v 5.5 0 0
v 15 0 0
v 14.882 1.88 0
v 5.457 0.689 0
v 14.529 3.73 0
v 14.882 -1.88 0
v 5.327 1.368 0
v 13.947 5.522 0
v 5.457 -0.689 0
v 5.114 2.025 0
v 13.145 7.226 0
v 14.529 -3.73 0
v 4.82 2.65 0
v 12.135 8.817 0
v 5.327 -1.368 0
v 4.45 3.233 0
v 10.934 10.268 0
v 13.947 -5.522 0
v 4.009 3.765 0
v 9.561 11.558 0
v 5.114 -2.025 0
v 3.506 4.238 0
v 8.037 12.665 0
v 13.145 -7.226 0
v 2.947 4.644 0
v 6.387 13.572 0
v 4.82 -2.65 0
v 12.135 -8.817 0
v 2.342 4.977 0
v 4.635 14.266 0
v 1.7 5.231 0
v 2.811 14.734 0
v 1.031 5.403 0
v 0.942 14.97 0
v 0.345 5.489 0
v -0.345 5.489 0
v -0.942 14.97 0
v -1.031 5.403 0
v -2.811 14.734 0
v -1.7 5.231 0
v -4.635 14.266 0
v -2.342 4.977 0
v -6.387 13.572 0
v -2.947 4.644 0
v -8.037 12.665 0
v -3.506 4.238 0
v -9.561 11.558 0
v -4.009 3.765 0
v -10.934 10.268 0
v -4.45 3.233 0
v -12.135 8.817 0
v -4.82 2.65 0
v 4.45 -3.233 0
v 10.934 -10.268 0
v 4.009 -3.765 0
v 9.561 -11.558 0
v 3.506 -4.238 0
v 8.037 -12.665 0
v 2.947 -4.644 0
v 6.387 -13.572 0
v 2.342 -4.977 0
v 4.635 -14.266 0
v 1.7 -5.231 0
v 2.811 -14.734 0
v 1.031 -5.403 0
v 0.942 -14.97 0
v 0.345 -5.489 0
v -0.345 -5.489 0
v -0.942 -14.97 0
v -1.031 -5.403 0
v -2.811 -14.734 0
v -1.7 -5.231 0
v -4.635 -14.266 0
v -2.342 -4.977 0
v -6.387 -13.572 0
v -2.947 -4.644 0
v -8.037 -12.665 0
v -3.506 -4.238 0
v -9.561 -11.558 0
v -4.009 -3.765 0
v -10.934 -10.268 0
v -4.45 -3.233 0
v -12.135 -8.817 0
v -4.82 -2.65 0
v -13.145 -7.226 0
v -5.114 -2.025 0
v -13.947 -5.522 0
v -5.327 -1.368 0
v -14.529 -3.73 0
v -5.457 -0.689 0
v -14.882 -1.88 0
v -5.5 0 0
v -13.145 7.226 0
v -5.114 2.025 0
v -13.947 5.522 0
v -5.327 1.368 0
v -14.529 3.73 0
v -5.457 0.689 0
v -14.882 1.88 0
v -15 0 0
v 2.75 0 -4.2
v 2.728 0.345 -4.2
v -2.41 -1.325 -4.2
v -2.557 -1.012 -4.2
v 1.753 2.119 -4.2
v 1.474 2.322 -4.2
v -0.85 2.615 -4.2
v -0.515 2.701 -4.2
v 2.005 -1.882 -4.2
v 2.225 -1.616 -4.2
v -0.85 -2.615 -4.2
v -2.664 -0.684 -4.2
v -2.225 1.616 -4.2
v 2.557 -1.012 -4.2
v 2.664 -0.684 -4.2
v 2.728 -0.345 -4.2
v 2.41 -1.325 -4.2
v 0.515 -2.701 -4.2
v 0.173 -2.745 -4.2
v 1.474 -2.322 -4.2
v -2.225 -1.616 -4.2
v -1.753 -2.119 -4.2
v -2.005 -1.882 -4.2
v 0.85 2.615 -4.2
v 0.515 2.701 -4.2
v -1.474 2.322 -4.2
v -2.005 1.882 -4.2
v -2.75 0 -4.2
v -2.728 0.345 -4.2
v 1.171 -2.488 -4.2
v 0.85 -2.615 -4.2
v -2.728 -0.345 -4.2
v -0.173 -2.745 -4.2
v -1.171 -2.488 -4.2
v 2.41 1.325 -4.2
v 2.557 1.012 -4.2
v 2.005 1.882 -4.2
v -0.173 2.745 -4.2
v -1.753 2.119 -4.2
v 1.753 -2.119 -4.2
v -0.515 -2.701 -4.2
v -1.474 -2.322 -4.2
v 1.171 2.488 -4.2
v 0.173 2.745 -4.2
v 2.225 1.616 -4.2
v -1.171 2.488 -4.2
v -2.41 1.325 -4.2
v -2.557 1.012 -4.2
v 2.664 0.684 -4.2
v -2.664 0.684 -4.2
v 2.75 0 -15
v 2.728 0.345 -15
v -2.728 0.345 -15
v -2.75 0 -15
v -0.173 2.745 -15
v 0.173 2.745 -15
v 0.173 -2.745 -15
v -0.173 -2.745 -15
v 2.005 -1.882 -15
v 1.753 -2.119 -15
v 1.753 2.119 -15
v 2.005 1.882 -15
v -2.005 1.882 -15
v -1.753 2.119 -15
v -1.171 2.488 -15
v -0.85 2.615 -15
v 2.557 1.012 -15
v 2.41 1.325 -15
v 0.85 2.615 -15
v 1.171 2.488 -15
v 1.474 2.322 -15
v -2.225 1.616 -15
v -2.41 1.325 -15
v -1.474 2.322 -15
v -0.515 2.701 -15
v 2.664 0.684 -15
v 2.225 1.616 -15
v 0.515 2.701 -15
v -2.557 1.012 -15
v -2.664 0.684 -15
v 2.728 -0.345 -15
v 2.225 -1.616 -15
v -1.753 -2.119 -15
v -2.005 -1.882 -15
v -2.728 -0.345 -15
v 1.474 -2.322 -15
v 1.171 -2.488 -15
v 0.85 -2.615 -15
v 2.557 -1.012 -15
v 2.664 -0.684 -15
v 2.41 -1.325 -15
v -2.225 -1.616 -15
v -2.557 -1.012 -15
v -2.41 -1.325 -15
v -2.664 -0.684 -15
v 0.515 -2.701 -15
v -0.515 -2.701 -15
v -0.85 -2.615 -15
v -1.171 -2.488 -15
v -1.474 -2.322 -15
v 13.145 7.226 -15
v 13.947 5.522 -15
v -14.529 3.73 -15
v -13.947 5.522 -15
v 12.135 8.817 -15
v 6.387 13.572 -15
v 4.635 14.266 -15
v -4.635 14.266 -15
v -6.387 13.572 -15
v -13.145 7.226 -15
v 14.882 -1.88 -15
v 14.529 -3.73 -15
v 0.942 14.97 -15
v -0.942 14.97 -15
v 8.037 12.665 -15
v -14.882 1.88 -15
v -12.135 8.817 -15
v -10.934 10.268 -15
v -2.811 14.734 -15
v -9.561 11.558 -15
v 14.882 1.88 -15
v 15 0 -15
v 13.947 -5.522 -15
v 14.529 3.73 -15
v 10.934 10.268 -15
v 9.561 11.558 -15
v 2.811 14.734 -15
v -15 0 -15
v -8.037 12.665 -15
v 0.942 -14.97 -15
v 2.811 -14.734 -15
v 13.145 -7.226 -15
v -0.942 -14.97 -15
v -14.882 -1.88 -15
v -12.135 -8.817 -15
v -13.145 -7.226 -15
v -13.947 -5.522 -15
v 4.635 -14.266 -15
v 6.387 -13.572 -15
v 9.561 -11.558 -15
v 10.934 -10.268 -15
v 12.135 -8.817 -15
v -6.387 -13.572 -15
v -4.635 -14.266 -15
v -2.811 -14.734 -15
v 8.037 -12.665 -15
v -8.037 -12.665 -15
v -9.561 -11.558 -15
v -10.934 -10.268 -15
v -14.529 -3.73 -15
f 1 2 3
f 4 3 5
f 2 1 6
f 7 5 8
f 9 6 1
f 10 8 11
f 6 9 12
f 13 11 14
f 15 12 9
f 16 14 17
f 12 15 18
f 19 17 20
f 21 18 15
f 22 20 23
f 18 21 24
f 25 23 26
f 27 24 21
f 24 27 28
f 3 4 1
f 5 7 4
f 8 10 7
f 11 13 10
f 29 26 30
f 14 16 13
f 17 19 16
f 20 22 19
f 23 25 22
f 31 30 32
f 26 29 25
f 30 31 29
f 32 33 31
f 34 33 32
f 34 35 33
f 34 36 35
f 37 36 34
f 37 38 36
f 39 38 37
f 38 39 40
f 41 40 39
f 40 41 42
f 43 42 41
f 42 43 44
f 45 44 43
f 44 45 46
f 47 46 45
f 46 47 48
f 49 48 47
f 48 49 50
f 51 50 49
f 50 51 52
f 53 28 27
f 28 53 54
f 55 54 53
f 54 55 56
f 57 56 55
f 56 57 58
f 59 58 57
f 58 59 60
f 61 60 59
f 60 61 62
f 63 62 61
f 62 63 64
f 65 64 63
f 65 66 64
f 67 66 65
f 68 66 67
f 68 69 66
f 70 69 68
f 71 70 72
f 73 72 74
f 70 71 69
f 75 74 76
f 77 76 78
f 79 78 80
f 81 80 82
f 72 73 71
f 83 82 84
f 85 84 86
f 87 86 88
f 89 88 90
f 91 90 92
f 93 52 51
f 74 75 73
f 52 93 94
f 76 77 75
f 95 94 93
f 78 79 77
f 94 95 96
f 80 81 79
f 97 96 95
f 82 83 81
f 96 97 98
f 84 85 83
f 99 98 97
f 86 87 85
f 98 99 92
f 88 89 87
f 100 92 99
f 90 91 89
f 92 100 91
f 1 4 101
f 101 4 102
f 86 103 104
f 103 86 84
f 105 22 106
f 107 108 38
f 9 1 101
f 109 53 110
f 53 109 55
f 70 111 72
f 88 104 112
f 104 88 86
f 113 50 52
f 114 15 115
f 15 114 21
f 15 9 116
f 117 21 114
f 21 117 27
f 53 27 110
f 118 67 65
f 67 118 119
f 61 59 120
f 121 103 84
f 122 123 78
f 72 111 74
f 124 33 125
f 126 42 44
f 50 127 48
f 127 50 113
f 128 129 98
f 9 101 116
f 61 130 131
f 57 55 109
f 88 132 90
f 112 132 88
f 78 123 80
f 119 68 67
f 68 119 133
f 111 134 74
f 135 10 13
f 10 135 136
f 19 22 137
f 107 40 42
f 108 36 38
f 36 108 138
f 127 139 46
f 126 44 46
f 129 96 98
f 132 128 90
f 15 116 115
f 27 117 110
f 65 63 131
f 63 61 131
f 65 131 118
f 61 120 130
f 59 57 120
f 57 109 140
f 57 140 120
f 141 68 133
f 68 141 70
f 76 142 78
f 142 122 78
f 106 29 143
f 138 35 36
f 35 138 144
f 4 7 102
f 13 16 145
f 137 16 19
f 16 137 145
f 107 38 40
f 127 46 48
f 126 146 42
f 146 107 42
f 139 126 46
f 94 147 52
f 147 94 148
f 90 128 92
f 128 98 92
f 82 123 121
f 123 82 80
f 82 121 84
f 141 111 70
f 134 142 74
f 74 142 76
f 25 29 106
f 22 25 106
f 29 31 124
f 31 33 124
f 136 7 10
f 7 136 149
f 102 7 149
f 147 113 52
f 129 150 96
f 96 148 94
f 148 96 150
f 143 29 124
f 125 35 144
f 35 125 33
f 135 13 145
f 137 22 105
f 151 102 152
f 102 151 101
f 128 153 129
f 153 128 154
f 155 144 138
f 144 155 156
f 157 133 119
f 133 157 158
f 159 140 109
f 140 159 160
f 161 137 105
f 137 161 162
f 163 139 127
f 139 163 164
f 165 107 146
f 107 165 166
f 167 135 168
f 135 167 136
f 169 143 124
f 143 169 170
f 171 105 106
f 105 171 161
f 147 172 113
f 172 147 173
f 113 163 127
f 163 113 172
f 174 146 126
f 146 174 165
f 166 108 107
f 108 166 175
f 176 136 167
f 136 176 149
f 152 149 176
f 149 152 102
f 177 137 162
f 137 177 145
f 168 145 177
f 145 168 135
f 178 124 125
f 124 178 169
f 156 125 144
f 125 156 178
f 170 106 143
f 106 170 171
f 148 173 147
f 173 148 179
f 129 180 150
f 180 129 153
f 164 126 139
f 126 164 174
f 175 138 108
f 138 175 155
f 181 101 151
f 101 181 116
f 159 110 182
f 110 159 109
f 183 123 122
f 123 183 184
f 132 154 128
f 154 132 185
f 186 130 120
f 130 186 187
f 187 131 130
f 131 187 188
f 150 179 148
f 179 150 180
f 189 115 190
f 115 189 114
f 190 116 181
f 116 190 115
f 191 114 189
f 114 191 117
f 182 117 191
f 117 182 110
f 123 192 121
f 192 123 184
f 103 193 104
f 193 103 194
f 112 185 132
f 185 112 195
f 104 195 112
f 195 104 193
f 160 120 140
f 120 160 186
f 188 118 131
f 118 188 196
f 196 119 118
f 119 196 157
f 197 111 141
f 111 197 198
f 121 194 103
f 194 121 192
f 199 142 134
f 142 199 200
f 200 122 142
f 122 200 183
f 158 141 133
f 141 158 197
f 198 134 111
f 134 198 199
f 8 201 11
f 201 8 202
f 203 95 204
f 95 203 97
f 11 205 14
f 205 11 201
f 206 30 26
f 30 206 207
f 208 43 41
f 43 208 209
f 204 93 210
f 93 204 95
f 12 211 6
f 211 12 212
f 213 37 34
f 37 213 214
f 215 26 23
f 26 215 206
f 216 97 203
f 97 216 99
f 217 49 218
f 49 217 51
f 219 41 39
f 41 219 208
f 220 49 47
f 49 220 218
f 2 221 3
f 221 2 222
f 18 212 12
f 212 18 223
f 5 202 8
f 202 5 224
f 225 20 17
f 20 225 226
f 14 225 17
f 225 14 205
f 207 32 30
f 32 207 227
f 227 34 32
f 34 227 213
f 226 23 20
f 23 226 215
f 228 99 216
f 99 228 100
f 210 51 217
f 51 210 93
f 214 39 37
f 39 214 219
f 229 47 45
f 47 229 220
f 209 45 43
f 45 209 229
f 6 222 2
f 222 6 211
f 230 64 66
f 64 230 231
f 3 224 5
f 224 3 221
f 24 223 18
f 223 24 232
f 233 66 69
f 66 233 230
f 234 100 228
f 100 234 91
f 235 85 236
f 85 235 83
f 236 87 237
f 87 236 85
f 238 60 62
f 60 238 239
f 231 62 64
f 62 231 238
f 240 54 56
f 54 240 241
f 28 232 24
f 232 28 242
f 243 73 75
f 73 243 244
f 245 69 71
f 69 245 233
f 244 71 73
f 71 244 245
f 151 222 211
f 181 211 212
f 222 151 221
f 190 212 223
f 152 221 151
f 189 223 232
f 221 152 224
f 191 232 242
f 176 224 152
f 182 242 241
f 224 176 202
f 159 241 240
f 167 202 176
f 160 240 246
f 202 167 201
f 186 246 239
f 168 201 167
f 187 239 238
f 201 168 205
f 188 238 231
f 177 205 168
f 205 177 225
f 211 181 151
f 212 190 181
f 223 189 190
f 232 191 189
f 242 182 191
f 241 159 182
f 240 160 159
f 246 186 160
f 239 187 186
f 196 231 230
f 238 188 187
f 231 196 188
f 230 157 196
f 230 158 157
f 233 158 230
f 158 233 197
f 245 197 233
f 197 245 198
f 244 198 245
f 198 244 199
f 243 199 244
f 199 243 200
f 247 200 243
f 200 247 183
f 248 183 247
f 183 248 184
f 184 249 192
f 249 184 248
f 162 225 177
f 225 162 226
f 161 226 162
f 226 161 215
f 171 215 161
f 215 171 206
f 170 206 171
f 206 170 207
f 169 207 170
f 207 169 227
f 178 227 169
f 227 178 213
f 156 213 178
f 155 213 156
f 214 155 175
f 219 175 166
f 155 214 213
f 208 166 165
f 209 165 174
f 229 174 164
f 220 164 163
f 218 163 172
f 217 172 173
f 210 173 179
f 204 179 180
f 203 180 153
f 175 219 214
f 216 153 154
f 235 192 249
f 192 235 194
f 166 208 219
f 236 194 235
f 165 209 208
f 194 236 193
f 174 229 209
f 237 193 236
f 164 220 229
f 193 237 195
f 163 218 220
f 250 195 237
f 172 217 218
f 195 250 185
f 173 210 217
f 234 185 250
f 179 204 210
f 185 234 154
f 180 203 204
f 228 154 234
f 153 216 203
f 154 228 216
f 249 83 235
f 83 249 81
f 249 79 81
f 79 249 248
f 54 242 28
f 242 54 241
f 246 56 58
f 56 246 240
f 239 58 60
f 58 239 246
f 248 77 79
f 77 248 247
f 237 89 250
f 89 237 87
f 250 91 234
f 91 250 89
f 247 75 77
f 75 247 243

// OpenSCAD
$fn = 50;


difference() {
	union() {
		translate(v = [0, 0, -15.0000000000]) {
			cylinder(h = 15, r = 15.0000000000);
		}
	}
	union() {
		translate(v = [0, 0, 0]) {
			rotate(a = [0, 0, 0]) {
				difference() {
					union() {
						translate(v = [0, 0, -18.0000000000]) {
							cylinder(h = 18, r = 2.2500000000);
						}
						translate(v = [0, 0, -4.2000000000]) {
							cylinder(h = 4.2000000000, r1 = 2.7500000000, r2 = 5.5000000000);
						}
						translate(v = [0, 0, -18.0000000000]) {
							cylinder(h = 18, r = 2.7500000000);
						}
						translate(v = [0, 0, -18.0000000000]) {
							cylinder(h = 18, r = 2.2500000000);
						}
					}
					union();
				}
			}
		}
	}
}
